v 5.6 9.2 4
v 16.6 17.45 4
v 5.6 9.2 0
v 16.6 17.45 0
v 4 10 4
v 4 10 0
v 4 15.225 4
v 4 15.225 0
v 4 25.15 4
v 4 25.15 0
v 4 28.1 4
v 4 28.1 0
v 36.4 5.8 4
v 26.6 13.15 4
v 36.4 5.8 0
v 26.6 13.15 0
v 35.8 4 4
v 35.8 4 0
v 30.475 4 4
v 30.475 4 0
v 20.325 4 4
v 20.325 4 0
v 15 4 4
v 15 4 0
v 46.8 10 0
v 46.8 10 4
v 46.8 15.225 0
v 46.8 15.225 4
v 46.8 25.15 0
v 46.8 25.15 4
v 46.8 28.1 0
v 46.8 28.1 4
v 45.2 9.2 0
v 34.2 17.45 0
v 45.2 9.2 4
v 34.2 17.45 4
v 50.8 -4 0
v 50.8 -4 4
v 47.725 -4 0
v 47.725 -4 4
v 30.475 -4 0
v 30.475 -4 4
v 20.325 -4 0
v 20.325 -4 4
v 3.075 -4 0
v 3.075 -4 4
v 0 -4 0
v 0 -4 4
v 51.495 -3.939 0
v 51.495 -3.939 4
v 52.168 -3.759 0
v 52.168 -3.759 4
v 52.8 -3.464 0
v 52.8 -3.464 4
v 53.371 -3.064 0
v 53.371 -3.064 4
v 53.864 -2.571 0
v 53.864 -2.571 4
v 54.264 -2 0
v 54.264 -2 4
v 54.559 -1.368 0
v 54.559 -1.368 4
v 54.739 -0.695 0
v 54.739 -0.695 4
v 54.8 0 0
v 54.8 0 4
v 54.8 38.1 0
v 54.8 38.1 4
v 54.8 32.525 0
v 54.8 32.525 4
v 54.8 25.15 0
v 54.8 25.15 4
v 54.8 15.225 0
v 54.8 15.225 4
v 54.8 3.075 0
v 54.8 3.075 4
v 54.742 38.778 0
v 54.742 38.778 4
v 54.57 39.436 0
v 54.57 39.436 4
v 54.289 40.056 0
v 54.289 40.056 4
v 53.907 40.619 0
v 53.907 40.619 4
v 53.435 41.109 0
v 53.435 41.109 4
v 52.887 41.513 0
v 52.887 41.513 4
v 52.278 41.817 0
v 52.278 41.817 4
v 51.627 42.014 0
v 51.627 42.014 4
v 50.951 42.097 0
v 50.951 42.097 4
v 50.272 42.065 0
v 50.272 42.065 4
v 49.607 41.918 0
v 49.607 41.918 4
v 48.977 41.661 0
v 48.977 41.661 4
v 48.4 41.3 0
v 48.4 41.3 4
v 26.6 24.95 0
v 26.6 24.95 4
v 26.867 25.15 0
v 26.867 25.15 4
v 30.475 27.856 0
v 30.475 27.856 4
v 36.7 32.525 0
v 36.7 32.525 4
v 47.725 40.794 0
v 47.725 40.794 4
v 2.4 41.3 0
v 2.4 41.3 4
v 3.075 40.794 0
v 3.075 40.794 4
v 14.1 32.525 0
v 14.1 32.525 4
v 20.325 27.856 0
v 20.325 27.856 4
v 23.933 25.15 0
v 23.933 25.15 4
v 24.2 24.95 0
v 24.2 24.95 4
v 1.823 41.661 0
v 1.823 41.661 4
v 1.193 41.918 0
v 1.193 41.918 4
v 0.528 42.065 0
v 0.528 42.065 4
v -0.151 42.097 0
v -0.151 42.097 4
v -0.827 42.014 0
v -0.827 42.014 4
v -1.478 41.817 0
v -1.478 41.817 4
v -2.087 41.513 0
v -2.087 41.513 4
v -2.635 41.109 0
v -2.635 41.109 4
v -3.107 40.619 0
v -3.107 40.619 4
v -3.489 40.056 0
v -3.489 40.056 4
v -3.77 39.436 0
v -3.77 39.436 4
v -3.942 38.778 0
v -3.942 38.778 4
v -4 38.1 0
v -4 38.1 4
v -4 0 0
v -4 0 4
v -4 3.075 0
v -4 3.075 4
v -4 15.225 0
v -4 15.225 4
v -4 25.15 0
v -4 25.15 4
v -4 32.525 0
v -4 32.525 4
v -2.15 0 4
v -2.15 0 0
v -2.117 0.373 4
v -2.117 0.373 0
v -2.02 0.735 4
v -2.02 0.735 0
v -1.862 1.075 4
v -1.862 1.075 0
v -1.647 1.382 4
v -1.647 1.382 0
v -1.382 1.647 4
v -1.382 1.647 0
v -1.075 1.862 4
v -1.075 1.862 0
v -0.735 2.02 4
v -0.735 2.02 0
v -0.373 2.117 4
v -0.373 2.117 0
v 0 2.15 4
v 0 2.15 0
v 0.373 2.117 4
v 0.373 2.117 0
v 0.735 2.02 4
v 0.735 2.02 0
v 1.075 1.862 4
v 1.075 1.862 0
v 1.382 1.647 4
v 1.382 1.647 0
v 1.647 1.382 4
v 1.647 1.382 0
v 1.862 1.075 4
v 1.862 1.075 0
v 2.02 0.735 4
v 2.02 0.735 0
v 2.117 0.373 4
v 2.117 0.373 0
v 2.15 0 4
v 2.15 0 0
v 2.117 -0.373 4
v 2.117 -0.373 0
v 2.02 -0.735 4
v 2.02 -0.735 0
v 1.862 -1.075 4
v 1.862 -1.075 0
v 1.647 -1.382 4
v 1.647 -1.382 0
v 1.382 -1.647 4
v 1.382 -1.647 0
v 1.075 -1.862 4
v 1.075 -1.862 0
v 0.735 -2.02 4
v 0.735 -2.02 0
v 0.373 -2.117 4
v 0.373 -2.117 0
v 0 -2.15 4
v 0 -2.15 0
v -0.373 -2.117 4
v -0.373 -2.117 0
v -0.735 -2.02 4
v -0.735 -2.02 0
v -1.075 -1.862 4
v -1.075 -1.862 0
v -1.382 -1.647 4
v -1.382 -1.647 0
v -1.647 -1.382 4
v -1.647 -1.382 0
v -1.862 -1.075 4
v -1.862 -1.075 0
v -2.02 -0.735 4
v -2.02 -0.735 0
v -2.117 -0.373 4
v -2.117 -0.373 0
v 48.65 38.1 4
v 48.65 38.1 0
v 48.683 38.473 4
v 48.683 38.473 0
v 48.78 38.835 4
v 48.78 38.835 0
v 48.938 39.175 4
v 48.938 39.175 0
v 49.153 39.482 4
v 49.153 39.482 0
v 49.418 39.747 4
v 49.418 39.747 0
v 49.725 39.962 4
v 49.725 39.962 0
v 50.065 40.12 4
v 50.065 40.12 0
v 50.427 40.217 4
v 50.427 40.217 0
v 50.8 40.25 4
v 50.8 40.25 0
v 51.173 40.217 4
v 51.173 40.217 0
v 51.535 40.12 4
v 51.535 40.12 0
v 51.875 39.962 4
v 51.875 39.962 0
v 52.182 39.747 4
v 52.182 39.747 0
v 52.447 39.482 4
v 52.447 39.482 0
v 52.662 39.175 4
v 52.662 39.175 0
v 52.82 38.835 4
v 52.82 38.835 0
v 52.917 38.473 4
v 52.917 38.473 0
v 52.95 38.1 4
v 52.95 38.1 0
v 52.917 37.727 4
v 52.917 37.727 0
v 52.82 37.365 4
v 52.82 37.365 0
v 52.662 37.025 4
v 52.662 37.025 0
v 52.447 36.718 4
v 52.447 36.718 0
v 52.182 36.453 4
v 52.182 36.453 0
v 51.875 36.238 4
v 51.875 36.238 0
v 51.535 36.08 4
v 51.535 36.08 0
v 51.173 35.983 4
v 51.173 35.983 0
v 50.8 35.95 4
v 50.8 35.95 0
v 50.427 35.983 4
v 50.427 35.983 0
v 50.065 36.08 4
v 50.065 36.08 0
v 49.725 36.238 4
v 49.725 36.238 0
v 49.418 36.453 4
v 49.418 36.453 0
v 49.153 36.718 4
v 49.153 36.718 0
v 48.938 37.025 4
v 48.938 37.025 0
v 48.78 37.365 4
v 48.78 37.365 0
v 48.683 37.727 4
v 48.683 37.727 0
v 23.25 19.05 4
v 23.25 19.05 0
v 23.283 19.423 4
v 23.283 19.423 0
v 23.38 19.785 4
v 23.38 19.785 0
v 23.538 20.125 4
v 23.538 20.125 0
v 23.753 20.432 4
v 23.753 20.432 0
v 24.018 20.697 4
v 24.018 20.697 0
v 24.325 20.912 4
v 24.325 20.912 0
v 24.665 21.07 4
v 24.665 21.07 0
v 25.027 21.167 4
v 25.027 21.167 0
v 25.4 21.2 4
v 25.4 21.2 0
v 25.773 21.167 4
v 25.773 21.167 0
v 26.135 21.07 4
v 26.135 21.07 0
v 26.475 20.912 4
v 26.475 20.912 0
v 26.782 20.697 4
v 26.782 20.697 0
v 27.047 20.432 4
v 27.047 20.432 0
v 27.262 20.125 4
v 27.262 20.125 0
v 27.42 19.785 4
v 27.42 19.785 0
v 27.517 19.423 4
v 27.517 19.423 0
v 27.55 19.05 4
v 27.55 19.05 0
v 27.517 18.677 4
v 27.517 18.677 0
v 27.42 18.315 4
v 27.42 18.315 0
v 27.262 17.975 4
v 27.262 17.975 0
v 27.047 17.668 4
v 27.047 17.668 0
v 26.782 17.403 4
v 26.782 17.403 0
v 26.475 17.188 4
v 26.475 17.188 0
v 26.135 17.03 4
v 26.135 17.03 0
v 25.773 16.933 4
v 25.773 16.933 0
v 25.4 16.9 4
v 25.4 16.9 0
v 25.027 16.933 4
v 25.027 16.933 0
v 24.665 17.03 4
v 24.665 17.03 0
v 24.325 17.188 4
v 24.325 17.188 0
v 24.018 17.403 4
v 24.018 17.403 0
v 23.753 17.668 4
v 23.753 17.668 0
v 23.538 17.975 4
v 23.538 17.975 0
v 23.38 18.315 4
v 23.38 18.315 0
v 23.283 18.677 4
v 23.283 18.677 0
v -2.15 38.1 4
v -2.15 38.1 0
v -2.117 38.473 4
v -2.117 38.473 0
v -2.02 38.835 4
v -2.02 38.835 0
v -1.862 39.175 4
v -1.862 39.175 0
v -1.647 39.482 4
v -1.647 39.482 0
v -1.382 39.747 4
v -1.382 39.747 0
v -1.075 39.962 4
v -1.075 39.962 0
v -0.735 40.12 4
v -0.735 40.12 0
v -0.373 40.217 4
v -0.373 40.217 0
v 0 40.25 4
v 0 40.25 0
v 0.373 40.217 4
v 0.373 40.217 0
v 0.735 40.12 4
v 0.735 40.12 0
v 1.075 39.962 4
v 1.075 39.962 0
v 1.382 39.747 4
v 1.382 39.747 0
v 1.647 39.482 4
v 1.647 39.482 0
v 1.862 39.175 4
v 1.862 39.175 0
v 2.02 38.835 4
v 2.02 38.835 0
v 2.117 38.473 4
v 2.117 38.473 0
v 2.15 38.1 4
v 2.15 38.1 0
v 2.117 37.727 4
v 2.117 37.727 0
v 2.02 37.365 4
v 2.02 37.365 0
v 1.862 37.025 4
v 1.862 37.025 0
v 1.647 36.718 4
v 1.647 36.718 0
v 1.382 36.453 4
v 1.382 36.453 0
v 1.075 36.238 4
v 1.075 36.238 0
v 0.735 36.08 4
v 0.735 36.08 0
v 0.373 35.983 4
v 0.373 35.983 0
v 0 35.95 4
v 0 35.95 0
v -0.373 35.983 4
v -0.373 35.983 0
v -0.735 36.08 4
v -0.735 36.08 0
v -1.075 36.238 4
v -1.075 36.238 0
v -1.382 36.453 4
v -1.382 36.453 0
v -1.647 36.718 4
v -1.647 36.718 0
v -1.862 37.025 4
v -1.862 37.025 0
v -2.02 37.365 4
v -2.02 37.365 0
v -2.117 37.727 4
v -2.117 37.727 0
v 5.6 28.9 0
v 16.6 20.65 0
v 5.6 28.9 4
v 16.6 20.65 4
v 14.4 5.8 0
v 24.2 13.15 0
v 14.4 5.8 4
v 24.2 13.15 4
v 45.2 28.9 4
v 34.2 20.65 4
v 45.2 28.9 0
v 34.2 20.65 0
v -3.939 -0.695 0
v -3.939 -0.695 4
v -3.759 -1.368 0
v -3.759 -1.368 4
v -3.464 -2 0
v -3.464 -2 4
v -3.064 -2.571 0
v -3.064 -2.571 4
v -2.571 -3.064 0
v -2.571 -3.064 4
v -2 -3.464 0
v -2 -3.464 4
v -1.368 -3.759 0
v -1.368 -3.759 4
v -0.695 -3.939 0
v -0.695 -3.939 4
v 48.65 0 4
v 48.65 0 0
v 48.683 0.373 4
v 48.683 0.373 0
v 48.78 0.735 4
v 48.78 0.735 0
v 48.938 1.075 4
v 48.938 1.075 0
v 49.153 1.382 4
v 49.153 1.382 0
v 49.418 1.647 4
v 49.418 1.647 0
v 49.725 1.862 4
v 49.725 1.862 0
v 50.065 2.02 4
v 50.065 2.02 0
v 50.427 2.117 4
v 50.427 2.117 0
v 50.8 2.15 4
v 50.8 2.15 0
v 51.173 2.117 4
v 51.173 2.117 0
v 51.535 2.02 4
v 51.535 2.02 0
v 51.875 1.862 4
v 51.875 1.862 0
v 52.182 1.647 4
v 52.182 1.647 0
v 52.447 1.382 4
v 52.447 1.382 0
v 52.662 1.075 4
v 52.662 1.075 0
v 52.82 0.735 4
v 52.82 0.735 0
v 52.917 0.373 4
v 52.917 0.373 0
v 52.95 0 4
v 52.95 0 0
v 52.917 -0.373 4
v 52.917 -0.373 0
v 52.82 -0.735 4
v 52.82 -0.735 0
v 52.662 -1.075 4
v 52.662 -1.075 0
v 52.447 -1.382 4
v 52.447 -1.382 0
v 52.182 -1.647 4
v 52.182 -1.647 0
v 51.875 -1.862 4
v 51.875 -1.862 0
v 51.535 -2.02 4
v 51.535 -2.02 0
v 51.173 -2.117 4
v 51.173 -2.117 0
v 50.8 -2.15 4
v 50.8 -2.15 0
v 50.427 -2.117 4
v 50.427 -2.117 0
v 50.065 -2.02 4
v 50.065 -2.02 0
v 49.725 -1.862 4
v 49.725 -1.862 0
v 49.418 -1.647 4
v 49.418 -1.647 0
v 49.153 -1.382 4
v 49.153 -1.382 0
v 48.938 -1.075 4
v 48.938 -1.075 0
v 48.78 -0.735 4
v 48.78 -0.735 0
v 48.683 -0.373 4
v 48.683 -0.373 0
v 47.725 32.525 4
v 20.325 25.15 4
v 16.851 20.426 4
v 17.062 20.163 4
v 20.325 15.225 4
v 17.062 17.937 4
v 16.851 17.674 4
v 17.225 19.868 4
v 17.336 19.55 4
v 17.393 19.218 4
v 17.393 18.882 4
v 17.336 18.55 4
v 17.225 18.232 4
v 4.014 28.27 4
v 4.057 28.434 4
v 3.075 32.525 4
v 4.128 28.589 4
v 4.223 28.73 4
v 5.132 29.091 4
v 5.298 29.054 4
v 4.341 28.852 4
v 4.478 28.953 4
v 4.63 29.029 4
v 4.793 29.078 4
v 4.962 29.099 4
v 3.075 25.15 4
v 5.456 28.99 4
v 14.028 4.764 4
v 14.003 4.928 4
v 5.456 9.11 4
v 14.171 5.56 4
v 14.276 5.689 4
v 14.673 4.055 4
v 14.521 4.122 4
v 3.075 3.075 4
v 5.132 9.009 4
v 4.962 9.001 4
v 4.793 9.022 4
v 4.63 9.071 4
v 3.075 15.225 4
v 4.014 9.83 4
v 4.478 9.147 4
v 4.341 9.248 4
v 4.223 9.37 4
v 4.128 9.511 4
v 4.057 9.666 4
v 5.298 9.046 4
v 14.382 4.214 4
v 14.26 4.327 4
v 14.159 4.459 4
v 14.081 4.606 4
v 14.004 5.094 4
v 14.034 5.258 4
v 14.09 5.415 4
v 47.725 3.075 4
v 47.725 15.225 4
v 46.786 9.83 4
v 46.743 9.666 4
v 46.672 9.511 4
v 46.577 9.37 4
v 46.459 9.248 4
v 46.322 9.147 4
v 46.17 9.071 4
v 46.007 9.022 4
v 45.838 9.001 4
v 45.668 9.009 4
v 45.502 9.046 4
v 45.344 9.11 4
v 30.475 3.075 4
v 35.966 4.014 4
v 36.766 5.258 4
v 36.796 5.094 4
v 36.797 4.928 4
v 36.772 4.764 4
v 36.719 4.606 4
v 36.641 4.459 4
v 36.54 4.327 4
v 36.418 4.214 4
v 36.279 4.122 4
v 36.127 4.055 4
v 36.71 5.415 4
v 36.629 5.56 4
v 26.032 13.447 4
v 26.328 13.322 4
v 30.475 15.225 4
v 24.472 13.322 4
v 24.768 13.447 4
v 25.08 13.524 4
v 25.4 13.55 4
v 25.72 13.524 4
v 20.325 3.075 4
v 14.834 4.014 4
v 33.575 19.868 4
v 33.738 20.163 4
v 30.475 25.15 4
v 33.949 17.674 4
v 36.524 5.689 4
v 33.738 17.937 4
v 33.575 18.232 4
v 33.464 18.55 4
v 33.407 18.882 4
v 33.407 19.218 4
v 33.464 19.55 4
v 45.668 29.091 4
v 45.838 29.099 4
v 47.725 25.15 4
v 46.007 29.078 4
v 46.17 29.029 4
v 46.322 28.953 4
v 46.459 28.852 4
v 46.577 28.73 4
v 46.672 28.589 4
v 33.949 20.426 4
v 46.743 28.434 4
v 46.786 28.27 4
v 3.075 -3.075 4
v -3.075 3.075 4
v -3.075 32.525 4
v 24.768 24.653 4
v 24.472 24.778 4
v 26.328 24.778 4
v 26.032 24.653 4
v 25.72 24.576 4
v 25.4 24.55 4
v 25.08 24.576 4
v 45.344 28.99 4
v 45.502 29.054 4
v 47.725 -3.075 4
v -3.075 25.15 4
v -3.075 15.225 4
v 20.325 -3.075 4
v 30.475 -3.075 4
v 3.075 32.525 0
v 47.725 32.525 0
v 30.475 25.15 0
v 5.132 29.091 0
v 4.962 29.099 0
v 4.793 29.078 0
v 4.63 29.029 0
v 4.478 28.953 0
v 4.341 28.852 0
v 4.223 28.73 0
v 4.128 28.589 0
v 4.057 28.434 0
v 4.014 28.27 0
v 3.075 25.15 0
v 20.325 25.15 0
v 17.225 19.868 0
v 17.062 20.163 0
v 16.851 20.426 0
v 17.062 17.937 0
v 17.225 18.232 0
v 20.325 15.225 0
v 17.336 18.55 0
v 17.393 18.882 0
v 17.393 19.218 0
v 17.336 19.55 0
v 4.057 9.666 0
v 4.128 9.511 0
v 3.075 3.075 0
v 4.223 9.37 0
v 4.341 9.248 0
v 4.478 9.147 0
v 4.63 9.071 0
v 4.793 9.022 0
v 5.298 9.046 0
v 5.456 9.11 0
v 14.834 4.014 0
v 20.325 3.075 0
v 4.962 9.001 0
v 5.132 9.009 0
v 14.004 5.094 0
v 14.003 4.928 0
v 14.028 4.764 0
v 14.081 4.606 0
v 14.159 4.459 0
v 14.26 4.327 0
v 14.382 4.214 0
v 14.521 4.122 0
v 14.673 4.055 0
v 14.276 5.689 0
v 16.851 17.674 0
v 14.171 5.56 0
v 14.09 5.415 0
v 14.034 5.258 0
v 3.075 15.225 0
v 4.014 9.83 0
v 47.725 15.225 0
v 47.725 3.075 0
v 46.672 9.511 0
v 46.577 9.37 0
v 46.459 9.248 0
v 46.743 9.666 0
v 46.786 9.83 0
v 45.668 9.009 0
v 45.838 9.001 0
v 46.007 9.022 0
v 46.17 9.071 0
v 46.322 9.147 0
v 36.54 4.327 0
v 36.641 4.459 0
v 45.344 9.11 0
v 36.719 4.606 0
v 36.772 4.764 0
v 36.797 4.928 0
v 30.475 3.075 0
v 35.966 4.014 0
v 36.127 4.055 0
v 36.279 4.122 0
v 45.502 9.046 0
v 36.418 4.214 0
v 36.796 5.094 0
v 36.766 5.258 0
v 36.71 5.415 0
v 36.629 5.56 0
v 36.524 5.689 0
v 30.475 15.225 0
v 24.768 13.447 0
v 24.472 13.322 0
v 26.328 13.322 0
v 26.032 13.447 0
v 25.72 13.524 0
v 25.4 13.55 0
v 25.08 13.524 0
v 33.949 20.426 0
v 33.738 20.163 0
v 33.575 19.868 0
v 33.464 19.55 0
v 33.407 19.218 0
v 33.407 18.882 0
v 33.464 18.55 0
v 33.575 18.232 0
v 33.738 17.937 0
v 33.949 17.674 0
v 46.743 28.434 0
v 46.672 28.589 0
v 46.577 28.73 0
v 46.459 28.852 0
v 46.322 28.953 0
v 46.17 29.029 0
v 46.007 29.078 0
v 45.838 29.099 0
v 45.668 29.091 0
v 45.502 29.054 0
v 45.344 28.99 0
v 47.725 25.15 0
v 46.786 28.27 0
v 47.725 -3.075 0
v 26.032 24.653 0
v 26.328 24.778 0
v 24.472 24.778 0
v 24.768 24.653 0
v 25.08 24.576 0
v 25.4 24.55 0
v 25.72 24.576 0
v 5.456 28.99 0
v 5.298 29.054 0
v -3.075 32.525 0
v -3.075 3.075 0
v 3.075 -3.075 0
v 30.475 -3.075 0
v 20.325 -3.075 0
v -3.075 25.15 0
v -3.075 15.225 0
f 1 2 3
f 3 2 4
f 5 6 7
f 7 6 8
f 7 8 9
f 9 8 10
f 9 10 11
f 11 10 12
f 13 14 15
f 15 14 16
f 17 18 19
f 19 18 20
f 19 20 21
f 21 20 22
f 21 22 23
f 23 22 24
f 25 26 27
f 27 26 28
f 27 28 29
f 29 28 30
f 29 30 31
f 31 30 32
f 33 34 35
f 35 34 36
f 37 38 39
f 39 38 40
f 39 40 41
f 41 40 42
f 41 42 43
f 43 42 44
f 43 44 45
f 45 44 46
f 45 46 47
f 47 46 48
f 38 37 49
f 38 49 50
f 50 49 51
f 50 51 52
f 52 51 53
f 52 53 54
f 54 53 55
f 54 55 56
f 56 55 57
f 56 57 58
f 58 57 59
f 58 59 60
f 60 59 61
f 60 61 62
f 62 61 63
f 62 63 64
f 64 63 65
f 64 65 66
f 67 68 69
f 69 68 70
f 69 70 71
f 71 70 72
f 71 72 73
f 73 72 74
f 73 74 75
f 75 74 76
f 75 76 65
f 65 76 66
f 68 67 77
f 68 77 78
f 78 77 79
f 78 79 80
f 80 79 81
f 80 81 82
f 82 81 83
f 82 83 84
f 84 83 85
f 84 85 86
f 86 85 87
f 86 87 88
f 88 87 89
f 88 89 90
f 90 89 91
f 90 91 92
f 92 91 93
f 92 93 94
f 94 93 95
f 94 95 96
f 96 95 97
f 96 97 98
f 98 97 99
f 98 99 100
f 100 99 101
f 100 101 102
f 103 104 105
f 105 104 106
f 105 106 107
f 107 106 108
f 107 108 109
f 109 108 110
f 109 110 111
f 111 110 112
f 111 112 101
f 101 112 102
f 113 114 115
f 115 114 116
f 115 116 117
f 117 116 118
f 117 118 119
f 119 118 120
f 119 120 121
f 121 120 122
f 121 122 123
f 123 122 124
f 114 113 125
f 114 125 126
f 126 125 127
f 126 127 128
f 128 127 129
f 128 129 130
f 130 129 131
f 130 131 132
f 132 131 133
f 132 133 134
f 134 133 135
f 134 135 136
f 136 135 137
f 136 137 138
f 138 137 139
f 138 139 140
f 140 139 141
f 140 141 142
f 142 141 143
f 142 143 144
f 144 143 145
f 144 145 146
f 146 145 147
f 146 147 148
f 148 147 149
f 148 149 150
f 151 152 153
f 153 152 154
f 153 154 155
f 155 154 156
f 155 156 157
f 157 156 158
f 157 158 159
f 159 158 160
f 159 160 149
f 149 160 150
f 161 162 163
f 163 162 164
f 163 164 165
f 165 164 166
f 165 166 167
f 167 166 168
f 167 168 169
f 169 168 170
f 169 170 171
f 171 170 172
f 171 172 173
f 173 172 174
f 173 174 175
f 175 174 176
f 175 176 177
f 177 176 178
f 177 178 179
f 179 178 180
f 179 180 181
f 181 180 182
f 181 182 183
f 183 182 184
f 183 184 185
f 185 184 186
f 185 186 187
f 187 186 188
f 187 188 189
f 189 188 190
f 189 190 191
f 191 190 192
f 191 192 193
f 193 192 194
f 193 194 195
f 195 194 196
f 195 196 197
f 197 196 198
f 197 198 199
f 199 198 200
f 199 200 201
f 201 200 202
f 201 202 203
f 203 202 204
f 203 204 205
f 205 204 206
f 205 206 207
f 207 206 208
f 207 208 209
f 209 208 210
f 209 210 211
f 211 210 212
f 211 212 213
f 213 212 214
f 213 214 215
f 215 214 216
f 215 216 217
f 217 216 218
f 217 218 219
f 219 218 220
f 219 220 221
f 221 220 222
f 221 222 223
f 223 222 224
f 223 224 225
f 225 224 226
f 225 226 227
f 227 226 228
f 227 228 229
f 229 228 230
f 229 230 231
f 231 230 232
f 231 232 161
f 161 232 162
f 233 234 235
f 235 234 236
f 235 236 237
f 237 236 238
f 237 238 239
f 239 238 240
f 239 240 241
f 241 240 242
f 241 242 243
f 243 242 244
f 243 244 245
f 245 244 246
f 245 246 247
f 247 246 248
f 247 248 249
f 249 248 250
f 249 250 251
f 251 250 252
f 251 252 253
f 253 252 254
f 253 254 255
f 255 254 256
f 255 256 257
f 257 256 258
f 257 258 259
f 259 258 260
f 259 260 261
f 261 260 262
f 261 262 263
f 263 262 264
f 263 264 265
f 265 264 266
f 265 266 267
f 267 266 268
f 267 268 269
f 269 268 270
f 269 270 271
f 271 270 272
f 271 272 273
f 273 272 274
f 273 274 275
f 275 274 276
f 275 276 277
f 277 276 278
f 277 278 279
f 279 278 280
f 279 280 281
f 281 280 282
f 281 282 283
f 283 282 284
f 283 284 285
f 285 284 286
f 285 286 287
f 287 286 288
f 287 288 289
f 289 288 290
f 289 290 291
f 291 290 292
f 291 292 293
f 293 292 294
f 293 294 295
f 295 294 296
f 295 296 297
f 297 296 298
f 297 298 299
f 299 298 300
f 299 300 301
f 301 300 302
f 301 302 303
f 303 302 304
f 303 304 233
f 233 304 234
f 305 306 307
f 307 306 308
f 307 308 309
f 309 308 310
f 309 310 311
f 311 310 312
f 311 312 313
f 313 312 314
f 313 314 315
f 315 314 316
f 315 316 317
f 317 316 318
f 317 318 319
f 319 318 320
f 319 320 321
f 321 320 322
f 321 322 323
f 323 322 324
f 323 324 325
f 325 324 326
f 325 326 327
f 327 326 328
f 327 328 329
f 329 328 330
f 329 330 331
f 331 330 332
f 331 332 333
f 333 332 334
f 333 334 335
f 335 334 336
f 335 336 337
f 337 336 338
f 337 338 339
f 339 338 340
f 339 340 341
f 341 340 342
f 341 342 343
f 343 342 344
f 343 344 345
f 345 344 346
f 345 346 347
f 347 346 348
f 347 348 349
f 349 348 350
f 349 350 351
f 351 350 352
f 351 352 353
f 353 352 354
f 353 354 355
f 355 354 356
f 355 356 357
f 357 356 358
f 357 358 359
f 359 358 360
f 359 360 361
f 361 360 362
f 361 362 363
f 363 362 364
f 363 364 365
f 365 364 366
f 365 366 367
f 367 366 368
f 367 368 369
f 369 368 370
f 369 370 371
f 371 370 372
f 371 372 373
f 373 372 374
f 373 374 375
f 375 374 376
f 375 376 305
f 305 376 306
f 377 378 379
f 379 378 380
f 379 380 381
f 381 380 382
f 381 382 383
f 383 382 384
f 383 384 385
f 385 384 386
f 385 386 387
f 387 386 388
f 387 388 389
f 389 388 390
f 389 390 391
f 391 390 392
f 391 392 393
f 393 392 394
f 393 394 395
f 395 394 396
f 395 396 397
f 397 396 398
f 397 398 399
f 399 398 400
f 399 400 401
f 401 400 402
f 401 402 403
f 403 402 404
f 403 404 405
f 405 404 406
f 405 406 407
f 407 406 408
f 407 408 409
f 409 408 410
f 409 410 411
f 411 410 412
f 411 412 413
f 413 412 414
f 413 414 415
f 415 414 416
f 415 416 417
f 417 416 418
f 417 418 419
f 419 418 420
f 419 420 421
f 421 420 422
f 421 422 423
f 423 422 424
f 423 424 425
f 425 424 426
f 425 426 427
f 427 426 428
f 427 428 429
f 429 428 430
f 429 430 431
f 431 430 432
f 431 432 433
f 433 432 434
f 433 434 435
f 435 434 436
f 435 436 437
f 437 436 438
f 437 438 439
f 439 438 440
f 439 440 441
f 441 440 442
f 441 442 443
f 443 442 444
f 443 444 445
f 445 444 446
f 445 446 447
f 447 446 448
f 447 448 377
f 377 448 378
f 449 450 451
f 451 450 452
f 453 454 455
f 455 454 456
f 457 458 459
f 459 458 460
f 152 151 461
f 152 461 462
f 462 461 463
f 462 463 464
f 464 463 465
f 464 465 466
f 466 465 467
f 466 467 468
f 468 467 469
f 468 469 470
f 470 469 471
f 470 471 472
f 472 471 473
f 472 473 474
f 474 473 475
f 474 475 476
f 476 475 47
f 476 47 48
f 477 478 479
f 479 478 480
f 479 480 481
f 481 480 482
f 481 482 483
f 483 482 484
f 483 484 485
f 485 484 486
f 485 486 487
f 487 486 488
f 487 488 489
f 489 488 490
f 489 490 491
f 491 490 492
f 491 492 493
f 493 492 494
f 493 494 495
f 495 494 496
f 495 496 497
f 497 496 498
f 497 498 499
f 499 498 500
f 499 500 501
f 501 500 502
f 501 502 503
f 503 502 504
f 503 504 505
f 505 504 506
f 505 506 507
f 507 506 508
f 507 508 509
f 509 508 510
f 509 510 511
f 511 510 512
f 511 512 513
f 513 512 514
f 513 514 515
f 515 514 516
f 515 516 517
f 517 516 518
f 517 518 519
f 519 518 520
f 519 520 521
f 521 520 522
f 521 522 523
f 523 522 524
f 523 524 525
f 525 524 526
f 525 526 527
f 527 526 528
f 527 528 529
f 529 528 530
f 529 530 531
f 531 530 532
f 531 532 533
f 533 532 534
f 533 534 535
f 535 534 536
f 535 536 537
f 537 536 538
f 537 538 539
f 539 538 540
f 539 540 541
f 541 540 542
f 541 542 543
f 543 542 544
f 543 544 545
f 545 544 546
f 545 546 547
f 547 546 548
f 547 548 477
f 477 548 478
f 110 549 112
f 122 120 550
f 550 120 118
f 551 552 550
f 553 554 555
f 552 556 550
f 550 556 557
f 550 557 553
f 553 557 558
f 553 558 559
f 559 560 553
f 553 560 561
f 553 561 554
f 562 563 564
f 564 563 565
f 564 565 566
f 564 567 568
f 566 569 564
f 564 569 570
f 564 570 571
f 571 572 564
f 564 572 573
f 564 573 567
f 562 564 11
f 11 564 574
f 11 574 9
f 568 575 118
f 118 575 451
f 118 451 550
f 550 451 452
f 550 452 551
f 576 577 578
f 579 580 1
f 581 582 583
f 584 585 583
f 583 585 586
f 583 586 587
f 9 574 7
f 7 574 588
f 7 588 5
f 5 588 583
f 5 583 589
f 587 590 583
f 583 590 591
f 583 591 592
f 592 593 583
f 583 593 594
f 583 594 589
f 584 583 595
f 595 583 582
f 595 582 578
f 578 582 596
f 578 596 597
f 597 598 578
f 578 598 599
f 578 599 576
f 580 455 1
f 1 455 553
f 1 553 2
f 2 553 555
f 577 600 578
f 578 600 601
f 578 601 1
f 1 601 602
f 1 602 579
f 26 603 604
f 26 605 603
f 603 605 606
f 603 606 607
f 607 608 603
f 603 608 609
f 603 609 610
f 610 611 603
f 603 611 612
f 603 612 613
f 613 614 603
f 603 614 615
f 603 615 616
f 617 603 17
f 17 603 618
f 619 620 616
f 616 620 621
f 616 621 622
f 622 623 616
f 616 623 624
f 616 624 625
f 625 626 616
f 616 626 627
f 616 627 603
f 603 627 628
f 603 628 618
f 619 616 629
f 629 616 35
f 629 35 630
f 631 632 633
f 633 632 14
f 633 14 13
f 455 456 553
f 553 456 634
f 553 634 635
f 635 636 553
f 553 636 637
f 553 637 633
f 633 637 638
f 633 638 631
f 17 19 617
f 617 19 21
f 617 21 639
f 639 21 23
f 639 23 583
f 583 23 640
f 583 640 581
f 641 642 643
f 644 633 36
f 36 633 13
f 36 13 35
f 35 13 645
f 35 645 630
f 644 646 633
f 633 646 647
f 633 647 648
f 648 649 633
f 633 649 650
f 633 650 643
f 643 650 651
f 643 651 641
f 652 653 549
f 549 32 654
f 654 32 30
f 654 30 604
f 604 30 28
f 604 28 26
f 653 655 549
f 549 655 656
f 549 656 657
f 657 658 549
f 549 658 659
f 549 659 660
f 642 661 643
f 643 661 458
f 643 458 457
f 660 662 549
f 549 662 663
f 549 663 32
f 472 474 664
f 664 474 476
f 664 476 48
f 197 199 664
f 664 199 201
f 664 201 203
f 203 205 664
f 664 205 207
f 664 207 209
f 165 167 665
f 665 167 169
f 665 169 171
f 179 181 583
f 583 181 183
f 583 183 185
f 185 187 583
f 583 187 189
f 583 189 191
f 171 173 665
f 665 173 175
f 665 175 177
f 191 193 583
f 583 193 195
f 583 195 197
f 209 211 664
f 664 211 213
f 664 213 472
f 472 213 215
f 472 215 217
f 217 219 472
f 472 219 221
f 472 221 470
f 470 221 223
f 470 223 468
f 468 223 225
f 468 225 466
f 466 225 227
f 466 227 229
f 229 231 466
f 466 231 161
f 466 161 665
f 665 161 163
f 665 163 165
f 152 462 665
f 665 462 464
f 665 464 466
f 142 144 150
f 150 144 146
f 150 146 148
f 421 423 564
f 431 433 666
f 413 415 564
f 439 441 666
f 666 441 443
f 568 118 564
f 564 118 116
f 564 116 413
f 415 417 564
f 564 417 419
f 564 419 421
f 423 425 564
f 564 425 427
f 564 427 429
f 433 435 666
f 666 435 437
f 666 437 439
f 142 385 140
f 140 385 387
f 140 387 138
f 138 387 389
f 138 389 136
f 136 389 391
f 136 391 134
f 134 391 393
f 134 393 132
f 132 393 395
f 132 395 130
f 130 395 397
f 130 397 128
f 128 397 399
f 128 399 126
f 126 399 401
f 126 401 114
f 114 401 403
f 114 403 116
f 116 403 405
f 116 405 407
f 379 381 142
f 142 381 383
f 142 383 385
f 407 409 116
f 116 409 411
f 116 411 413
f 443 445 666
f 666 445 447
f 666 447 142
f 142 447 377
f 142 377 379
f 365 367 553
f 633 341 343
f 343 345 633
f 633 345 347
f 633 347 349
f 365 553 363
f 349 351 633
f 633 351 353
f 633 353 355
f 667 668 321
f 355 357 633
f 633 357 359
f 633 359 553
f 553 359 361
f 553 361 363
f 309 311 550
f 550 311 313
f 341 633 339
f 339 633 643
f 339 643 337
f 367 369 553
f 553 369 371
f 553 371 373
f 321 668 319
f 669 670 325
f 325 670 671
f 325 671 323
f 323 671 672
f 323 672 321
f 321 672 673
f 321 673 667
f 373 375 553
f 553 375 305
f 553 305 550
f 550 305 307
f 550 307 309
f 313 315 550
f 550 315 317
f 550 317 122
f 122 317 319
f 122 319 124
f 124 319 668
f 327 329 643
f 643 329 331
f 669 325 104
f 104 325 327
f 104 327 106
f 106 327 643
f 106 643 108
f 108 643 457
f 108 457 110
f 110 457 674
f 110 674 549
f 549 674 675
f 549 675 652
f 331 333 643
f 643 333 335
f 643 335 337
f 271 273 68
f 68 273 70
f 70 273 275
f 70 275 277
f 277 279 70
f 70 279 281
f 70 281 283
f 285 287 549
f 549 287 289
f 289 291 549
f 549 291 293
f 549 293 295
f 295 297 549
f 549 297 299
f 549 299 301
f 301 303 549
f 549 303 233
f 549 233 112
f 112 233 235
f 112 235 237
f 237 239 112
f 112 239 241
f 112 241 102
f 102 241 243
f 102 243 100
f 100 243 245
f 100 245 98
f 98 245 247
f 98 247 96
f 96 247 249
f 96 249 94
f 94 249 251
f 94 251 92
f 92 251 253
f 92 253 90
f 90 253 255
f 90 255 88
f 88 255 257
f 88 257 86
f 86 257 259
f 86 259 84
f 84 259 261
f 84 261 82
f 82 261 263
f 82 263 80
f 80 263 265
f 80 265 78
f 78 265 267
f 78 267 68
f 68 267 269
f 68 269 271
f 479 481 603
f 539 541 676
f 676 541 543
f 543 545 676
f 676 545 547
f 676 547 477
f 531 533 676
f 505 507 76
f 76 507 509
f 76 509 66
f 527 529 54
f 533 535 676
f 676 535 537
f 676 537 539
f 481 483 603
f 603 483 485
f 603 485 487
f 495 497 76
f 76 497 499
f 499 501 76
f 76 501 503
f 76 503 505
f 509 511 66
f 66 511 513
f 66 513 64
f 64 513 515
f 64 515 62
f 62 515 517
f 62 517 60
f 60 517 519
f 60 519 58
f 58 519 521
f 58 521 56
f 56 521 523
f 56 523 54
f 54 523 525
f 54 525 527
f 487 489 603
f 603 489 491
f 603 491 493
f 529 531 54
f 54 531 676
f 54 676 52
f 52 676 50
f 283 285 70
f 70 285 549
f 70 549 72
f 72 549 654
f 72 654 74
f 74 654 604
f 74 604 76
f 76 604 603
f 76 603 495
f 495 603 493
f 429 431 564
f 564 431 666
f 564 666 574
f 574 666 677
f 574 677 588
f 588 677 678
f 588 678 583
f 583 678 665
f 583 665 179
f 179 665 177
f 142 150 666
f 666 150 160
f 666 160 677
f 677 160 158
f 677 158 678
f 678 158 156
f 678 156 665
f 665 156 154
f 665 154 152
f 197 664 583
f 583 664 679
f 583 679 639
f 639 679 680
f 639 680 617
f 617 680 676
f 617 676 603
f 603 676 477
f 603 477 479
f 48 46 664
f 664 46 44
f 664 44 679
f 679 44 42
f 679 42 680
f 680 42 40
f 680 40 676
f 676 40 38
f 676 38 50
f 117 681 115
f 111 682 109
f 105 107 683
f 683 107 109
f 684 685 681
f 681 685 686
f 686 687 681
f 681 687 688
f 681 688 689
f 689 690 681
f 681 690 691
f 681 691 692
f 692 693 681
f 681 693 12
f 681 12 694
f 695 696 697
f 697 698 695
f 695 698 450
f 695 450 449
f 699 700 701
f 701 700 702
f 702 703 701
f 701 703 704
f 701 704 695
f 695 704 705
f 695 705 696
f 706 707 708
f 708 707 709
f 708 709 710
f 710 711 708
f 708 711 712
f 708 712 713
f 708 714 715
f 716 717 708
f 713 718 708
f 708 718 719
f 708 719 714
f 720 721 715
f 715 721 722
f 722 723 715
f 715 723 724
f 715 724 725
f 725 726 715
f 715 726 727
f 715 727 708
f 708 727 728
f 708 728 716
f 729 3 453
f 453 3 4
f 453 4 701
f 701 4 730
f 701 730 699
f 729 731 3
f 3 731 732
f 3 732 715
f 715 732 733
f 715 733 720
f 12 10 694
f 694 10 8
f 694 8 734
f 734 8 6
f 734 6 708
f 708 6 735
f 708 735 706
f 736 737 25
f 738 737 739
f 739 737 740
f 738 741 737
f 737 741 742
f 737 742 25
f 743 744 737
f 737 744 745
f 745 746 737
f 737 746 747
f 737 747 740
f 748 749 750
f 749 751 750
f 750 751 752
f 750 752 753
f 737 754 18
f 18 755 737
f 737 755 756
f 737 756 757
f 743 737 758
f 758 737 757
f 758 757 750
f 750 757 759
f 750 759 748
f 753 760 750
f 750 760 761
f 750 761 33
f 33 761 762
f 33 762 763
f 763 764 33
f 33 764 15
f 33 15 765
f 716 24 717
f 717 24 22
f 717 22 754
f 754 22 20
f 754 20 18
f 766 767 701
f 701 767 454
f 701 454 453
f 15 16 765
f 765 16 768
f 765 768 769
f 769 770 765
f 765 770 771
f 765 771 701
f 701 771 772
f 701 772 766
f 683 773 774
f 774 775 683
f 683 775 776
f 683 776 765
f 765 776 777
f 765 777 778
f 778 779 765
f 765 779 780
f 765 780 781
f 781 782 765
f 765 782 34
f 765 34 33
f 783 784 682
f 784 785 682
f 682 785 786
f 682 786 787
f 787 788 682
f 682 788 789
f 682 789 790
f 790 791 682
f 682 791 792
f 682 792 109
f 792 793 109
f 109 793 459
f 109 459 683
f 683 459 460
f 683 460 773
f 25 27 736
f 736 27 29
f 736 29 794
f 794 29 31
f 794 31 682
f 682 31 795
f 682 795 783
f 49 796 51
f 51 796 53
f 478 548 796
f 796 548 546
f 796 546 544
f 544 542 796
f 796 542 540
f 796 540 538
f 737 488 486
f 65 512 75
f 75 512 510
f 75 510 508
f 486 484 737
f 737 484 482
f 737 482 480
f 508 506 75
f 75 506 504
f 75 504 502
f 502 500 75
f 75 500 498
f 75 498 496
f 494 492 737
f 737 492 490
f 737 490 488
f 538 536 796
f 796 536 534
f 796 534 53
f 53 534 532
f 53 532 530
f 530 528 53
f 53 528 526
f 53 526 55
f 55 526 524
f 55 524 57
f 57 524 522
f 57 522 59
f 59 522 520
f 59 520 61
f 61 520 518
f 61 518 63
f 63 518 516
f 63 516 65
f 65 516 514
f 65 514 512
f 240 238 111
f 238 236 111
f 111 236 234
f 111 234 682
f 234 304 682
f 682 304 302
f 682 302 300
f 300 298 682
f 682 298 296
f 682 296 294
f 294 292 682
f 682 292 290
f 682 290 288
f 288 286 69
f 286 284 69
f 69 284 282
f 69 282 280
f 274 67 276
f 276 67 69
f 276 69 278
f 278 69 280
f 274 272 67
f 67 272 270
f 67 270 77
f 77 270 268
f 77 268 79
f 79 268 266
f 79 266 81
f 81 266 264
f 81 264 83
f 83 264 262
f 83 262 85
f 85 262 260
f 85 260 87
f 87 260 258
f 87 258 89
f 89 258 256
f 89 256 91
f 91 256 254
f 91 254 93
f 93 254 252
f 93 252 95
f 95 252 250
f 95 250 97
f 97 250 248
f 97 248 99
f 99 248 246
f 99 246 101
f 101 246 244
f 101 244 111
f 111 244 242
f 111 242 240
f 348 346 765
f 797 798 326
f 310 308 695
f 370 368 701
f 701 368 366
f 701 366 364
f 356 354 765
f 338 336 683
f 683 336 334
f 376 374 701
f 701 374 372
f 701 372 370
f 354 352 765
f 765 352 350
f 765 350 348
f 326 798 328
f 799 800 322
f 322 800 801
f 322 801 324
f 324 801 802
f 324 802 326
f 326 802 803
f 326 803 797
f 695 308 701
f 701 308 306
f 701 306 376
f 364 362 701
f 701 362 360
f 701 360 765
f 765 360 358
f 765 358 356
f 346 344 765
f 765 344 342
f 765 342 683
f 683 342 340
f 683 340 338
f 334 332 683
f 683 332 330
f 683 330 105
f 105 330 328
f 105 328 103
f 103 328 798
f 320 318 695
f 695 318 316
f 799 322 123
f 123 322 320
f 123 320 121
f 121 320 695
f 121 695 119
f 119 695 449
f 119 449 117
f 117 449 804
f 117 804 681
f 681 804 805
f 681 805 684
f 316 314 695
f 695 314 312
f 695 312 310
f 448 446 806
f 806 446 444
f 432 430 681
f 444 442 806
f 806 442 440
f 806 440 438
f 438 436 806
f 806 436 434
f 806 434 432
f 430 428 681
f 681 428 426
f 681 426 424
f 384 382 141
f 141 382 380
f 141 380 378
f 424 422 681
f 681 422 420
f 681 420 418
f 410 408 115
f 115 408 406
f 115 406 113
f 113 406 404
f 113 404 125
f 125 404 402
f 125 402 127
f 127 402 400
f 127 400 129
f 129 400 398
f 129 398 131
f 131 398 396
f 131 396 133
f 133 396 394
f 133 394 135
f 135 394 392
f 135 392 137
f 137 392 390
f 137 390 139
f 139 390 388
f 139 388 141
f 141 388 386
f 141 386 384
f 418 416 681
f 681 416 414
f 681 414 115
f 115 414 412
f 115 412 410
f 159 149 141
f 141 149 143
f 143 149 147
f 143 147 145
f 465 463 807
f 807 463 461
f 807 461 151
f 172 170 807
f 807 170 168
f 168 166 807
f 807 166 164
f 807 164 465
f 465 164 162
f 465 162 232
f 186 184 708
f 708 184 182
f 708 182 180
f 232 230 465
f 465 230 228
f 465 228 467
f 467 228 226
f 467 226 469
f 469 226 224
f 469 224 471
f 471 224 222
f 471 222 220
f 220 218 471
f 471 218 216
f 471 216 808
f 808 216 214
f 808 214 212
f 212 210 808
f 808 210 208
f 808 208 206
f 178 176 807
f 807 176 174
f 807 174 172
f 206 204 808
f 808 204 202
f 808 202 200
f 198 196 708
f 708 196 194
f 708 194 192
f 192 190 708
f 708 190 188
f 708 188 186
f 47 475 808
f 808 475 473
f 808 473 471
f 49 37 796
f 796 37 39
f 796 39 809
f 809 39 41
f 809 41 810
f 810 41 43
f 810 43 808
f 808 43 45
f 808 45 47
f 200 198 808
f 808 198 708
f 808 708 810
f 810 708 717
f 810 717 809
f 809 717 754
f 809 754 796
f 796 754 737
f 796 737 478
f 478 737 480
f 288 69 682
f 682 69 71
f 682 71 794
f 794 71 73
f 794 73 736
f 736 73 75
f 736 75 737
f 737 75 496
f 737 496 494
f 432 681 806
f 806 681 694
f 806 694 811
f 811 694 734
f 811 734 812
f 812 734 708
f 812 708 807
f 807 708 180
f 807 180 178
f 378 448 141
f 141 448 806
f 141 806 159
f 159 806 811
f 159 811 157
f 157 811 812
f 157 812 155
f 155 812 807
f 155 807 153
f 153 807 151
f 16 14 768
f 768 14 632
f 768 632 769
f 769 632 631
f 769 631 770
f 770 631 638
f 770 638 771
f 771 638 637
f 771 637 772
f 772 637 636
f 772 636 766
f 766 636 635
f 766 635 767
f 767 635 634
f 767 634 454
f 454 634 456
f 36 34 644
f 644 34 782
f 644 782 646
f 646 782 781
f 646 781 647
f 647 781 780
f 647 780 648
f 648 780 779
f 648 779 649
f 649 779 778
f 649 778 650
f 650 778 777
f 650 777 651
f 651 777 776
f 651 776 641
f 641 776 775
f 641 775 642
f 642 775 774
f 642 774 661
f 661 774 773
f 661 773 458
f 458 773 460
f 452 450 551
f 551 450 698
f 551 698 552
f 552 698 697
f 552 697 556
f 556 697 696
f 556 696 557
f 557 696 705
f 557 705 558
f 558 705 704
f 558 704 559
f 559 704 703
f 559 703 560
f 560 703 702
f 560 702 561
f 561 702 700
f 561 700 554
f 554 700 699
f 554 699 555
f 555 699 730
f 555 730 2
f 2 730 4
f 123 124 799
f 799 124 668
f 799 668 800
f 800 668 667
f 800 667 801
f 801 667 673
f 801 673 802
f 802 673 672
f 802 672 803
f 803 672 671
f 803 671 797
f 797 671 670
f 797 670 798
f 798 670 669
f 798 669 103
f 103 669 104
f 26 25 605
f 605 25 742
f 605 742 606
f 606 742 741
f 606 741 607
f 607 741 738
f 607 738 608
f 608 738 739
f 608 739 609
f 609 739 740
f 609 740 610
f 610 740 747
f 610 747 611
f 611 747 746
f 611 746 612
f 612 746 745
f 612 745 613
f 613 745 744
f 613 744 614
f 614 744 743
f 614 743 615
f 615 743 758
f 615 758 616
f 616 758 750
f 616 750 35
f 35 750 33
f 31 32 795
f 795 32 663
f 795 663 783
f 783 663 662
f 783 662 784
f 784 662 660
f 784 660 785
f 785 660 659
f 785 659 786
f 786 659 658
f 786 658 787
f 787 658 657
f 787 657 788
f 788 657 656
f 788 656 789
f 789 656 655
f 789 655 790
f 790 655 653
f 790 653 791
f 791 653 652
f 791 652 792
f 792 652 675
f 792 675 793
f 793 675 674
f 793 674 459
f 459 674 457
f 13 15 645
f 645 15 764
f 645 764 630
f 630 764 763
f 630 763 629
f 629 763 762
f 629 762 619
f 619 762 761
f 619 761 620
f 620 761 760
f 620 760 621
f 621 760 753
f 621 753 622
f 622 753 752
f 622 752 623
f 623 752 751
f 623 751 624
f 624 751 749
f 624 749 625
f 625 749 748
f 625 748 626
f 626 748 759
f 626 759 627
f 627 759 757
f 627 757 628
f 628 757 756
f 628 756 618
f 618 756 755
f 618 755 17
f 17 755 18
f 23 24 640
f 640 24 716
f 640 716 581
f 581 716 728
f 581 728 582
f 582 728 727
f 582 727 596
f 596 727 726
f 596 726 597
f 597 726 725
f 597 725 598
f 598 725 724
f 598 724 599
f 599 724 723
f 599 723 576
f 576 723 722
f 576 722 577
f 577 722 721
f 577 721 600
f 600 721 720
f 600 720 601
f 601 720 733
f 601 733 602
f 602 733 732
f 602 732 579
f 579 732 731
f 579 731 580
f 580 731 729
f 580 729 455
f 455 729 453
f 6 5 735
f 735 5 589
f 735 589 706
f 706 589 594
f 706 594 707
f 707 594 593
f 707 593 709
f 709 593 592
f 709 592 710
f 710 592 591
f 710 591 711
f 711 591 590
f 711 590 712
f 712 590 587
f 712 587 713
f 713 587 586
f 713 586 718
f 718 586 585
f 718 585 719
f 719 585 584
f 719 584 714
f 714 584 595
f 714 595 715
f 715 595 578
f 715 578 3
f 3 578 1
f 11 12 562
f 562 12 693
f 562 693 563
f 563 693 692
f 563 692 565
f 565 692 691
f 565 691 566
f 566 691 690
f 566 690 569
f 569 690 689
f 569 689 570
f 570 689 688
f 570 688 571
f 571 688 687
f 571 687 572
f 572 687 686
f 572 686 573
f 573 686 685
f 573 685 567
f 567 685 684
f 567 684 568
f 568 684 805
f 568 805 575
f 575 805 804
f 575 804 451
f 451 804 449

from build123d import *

# Parameters (mm, degrees)
SKETCH1_R           = 2.15
BOSS_EXTRUDE1_DEPTH = 4
FILLET1_R           = 2
FILLET3_R           = 1


with BuildPart() as part:
    # Sketch1 → Boss-Extrude1 (new body)
    with BuildSketch(Plane.XY):
        with BuildLine():
            Line((-5e-09, -4), (50.8, -4))
            ThreePointArc((50.8, -4), (53.628427143, -2.828427107), (54.8, 5.1e-08))
            Line((54.8, 5.1e-08), (54.8, 38.1))
            ThreePointArc((54.8, 38.1), (52.588854382, 41.677708764), (48.4, 41.3))
            Line((48.4, 41.3), (25.4, 24.05))
            Line((25.4, 24.05), (2.4, 41.3))
            ThreePointArc((2.4, 41.3), (-1.788854382, 41.677708764), (-4, 38.1))
            Line((-4, 38.1), (-4, 0))
            ThreePointArc((-4, 0), (-2.828427127, -2.828427123), (-5e-09, -4))
        make_face()
        Polygon((46.8, 8), (32.066666667, 19.05), (46.8, 30.1), align=None, mode=Mode.SUBTRACT)
        Circle(SKETCH1_R, mode=Mode.SUBTRACT)
        Polygon((4, 8), (4, 30.1), (18.733333333, 19.05), align=None, mode=Mode.SUBTRACT)
        Polygon((25.4, 14.05), (38.8, 4), (12, 4), align=None, mode=Mode.SUBTRACT)
        with Locations((25.4, 19.05)):
            Circle(SKETCH1_R, mode=Mode.SUBTRACT)
        with Locations((50.8, 0)):
            Circle(SKETCH1_R, mode=Mode.SUBTRACT)
        with Locations((0, 38.1)):
            Circle(SKETCH1_R, mode=Mode.SUBTRACT)
        with Locations((50.8, 38.1)):
            Circle(SKETCH1_R, mode=Mode.SUBTRACT)
    extrude(amount=BOSS_EXTRUDE1_DEPTH)

    # Fillet1
    fillet1_edges = [part.edges().sort_by_distance(p)[0] for p in [
        (18.733333333, 19.05, 2),
        (25.4, 14.05, 2),
        (32.066666667, 19.05, 2),
        (25.4, 24.05, 2),
    ]]
    fillet(fillet1_edges, radius=FILLET1_R)

    # Fillet3
    fillet3_edges = [part.edges().sort_by_distance(p)[0] for p in [
        (4, 30.1, 2),
        (4, 8, 2),
        (12, 4, 2),
        (38.8, 4, 2),
        (46.8, 30.1, 2),
        (46.8, 8, 2),
    ]]
    fillet(fillet3_edges, radius=FILLET3_R)


solid = part.part
